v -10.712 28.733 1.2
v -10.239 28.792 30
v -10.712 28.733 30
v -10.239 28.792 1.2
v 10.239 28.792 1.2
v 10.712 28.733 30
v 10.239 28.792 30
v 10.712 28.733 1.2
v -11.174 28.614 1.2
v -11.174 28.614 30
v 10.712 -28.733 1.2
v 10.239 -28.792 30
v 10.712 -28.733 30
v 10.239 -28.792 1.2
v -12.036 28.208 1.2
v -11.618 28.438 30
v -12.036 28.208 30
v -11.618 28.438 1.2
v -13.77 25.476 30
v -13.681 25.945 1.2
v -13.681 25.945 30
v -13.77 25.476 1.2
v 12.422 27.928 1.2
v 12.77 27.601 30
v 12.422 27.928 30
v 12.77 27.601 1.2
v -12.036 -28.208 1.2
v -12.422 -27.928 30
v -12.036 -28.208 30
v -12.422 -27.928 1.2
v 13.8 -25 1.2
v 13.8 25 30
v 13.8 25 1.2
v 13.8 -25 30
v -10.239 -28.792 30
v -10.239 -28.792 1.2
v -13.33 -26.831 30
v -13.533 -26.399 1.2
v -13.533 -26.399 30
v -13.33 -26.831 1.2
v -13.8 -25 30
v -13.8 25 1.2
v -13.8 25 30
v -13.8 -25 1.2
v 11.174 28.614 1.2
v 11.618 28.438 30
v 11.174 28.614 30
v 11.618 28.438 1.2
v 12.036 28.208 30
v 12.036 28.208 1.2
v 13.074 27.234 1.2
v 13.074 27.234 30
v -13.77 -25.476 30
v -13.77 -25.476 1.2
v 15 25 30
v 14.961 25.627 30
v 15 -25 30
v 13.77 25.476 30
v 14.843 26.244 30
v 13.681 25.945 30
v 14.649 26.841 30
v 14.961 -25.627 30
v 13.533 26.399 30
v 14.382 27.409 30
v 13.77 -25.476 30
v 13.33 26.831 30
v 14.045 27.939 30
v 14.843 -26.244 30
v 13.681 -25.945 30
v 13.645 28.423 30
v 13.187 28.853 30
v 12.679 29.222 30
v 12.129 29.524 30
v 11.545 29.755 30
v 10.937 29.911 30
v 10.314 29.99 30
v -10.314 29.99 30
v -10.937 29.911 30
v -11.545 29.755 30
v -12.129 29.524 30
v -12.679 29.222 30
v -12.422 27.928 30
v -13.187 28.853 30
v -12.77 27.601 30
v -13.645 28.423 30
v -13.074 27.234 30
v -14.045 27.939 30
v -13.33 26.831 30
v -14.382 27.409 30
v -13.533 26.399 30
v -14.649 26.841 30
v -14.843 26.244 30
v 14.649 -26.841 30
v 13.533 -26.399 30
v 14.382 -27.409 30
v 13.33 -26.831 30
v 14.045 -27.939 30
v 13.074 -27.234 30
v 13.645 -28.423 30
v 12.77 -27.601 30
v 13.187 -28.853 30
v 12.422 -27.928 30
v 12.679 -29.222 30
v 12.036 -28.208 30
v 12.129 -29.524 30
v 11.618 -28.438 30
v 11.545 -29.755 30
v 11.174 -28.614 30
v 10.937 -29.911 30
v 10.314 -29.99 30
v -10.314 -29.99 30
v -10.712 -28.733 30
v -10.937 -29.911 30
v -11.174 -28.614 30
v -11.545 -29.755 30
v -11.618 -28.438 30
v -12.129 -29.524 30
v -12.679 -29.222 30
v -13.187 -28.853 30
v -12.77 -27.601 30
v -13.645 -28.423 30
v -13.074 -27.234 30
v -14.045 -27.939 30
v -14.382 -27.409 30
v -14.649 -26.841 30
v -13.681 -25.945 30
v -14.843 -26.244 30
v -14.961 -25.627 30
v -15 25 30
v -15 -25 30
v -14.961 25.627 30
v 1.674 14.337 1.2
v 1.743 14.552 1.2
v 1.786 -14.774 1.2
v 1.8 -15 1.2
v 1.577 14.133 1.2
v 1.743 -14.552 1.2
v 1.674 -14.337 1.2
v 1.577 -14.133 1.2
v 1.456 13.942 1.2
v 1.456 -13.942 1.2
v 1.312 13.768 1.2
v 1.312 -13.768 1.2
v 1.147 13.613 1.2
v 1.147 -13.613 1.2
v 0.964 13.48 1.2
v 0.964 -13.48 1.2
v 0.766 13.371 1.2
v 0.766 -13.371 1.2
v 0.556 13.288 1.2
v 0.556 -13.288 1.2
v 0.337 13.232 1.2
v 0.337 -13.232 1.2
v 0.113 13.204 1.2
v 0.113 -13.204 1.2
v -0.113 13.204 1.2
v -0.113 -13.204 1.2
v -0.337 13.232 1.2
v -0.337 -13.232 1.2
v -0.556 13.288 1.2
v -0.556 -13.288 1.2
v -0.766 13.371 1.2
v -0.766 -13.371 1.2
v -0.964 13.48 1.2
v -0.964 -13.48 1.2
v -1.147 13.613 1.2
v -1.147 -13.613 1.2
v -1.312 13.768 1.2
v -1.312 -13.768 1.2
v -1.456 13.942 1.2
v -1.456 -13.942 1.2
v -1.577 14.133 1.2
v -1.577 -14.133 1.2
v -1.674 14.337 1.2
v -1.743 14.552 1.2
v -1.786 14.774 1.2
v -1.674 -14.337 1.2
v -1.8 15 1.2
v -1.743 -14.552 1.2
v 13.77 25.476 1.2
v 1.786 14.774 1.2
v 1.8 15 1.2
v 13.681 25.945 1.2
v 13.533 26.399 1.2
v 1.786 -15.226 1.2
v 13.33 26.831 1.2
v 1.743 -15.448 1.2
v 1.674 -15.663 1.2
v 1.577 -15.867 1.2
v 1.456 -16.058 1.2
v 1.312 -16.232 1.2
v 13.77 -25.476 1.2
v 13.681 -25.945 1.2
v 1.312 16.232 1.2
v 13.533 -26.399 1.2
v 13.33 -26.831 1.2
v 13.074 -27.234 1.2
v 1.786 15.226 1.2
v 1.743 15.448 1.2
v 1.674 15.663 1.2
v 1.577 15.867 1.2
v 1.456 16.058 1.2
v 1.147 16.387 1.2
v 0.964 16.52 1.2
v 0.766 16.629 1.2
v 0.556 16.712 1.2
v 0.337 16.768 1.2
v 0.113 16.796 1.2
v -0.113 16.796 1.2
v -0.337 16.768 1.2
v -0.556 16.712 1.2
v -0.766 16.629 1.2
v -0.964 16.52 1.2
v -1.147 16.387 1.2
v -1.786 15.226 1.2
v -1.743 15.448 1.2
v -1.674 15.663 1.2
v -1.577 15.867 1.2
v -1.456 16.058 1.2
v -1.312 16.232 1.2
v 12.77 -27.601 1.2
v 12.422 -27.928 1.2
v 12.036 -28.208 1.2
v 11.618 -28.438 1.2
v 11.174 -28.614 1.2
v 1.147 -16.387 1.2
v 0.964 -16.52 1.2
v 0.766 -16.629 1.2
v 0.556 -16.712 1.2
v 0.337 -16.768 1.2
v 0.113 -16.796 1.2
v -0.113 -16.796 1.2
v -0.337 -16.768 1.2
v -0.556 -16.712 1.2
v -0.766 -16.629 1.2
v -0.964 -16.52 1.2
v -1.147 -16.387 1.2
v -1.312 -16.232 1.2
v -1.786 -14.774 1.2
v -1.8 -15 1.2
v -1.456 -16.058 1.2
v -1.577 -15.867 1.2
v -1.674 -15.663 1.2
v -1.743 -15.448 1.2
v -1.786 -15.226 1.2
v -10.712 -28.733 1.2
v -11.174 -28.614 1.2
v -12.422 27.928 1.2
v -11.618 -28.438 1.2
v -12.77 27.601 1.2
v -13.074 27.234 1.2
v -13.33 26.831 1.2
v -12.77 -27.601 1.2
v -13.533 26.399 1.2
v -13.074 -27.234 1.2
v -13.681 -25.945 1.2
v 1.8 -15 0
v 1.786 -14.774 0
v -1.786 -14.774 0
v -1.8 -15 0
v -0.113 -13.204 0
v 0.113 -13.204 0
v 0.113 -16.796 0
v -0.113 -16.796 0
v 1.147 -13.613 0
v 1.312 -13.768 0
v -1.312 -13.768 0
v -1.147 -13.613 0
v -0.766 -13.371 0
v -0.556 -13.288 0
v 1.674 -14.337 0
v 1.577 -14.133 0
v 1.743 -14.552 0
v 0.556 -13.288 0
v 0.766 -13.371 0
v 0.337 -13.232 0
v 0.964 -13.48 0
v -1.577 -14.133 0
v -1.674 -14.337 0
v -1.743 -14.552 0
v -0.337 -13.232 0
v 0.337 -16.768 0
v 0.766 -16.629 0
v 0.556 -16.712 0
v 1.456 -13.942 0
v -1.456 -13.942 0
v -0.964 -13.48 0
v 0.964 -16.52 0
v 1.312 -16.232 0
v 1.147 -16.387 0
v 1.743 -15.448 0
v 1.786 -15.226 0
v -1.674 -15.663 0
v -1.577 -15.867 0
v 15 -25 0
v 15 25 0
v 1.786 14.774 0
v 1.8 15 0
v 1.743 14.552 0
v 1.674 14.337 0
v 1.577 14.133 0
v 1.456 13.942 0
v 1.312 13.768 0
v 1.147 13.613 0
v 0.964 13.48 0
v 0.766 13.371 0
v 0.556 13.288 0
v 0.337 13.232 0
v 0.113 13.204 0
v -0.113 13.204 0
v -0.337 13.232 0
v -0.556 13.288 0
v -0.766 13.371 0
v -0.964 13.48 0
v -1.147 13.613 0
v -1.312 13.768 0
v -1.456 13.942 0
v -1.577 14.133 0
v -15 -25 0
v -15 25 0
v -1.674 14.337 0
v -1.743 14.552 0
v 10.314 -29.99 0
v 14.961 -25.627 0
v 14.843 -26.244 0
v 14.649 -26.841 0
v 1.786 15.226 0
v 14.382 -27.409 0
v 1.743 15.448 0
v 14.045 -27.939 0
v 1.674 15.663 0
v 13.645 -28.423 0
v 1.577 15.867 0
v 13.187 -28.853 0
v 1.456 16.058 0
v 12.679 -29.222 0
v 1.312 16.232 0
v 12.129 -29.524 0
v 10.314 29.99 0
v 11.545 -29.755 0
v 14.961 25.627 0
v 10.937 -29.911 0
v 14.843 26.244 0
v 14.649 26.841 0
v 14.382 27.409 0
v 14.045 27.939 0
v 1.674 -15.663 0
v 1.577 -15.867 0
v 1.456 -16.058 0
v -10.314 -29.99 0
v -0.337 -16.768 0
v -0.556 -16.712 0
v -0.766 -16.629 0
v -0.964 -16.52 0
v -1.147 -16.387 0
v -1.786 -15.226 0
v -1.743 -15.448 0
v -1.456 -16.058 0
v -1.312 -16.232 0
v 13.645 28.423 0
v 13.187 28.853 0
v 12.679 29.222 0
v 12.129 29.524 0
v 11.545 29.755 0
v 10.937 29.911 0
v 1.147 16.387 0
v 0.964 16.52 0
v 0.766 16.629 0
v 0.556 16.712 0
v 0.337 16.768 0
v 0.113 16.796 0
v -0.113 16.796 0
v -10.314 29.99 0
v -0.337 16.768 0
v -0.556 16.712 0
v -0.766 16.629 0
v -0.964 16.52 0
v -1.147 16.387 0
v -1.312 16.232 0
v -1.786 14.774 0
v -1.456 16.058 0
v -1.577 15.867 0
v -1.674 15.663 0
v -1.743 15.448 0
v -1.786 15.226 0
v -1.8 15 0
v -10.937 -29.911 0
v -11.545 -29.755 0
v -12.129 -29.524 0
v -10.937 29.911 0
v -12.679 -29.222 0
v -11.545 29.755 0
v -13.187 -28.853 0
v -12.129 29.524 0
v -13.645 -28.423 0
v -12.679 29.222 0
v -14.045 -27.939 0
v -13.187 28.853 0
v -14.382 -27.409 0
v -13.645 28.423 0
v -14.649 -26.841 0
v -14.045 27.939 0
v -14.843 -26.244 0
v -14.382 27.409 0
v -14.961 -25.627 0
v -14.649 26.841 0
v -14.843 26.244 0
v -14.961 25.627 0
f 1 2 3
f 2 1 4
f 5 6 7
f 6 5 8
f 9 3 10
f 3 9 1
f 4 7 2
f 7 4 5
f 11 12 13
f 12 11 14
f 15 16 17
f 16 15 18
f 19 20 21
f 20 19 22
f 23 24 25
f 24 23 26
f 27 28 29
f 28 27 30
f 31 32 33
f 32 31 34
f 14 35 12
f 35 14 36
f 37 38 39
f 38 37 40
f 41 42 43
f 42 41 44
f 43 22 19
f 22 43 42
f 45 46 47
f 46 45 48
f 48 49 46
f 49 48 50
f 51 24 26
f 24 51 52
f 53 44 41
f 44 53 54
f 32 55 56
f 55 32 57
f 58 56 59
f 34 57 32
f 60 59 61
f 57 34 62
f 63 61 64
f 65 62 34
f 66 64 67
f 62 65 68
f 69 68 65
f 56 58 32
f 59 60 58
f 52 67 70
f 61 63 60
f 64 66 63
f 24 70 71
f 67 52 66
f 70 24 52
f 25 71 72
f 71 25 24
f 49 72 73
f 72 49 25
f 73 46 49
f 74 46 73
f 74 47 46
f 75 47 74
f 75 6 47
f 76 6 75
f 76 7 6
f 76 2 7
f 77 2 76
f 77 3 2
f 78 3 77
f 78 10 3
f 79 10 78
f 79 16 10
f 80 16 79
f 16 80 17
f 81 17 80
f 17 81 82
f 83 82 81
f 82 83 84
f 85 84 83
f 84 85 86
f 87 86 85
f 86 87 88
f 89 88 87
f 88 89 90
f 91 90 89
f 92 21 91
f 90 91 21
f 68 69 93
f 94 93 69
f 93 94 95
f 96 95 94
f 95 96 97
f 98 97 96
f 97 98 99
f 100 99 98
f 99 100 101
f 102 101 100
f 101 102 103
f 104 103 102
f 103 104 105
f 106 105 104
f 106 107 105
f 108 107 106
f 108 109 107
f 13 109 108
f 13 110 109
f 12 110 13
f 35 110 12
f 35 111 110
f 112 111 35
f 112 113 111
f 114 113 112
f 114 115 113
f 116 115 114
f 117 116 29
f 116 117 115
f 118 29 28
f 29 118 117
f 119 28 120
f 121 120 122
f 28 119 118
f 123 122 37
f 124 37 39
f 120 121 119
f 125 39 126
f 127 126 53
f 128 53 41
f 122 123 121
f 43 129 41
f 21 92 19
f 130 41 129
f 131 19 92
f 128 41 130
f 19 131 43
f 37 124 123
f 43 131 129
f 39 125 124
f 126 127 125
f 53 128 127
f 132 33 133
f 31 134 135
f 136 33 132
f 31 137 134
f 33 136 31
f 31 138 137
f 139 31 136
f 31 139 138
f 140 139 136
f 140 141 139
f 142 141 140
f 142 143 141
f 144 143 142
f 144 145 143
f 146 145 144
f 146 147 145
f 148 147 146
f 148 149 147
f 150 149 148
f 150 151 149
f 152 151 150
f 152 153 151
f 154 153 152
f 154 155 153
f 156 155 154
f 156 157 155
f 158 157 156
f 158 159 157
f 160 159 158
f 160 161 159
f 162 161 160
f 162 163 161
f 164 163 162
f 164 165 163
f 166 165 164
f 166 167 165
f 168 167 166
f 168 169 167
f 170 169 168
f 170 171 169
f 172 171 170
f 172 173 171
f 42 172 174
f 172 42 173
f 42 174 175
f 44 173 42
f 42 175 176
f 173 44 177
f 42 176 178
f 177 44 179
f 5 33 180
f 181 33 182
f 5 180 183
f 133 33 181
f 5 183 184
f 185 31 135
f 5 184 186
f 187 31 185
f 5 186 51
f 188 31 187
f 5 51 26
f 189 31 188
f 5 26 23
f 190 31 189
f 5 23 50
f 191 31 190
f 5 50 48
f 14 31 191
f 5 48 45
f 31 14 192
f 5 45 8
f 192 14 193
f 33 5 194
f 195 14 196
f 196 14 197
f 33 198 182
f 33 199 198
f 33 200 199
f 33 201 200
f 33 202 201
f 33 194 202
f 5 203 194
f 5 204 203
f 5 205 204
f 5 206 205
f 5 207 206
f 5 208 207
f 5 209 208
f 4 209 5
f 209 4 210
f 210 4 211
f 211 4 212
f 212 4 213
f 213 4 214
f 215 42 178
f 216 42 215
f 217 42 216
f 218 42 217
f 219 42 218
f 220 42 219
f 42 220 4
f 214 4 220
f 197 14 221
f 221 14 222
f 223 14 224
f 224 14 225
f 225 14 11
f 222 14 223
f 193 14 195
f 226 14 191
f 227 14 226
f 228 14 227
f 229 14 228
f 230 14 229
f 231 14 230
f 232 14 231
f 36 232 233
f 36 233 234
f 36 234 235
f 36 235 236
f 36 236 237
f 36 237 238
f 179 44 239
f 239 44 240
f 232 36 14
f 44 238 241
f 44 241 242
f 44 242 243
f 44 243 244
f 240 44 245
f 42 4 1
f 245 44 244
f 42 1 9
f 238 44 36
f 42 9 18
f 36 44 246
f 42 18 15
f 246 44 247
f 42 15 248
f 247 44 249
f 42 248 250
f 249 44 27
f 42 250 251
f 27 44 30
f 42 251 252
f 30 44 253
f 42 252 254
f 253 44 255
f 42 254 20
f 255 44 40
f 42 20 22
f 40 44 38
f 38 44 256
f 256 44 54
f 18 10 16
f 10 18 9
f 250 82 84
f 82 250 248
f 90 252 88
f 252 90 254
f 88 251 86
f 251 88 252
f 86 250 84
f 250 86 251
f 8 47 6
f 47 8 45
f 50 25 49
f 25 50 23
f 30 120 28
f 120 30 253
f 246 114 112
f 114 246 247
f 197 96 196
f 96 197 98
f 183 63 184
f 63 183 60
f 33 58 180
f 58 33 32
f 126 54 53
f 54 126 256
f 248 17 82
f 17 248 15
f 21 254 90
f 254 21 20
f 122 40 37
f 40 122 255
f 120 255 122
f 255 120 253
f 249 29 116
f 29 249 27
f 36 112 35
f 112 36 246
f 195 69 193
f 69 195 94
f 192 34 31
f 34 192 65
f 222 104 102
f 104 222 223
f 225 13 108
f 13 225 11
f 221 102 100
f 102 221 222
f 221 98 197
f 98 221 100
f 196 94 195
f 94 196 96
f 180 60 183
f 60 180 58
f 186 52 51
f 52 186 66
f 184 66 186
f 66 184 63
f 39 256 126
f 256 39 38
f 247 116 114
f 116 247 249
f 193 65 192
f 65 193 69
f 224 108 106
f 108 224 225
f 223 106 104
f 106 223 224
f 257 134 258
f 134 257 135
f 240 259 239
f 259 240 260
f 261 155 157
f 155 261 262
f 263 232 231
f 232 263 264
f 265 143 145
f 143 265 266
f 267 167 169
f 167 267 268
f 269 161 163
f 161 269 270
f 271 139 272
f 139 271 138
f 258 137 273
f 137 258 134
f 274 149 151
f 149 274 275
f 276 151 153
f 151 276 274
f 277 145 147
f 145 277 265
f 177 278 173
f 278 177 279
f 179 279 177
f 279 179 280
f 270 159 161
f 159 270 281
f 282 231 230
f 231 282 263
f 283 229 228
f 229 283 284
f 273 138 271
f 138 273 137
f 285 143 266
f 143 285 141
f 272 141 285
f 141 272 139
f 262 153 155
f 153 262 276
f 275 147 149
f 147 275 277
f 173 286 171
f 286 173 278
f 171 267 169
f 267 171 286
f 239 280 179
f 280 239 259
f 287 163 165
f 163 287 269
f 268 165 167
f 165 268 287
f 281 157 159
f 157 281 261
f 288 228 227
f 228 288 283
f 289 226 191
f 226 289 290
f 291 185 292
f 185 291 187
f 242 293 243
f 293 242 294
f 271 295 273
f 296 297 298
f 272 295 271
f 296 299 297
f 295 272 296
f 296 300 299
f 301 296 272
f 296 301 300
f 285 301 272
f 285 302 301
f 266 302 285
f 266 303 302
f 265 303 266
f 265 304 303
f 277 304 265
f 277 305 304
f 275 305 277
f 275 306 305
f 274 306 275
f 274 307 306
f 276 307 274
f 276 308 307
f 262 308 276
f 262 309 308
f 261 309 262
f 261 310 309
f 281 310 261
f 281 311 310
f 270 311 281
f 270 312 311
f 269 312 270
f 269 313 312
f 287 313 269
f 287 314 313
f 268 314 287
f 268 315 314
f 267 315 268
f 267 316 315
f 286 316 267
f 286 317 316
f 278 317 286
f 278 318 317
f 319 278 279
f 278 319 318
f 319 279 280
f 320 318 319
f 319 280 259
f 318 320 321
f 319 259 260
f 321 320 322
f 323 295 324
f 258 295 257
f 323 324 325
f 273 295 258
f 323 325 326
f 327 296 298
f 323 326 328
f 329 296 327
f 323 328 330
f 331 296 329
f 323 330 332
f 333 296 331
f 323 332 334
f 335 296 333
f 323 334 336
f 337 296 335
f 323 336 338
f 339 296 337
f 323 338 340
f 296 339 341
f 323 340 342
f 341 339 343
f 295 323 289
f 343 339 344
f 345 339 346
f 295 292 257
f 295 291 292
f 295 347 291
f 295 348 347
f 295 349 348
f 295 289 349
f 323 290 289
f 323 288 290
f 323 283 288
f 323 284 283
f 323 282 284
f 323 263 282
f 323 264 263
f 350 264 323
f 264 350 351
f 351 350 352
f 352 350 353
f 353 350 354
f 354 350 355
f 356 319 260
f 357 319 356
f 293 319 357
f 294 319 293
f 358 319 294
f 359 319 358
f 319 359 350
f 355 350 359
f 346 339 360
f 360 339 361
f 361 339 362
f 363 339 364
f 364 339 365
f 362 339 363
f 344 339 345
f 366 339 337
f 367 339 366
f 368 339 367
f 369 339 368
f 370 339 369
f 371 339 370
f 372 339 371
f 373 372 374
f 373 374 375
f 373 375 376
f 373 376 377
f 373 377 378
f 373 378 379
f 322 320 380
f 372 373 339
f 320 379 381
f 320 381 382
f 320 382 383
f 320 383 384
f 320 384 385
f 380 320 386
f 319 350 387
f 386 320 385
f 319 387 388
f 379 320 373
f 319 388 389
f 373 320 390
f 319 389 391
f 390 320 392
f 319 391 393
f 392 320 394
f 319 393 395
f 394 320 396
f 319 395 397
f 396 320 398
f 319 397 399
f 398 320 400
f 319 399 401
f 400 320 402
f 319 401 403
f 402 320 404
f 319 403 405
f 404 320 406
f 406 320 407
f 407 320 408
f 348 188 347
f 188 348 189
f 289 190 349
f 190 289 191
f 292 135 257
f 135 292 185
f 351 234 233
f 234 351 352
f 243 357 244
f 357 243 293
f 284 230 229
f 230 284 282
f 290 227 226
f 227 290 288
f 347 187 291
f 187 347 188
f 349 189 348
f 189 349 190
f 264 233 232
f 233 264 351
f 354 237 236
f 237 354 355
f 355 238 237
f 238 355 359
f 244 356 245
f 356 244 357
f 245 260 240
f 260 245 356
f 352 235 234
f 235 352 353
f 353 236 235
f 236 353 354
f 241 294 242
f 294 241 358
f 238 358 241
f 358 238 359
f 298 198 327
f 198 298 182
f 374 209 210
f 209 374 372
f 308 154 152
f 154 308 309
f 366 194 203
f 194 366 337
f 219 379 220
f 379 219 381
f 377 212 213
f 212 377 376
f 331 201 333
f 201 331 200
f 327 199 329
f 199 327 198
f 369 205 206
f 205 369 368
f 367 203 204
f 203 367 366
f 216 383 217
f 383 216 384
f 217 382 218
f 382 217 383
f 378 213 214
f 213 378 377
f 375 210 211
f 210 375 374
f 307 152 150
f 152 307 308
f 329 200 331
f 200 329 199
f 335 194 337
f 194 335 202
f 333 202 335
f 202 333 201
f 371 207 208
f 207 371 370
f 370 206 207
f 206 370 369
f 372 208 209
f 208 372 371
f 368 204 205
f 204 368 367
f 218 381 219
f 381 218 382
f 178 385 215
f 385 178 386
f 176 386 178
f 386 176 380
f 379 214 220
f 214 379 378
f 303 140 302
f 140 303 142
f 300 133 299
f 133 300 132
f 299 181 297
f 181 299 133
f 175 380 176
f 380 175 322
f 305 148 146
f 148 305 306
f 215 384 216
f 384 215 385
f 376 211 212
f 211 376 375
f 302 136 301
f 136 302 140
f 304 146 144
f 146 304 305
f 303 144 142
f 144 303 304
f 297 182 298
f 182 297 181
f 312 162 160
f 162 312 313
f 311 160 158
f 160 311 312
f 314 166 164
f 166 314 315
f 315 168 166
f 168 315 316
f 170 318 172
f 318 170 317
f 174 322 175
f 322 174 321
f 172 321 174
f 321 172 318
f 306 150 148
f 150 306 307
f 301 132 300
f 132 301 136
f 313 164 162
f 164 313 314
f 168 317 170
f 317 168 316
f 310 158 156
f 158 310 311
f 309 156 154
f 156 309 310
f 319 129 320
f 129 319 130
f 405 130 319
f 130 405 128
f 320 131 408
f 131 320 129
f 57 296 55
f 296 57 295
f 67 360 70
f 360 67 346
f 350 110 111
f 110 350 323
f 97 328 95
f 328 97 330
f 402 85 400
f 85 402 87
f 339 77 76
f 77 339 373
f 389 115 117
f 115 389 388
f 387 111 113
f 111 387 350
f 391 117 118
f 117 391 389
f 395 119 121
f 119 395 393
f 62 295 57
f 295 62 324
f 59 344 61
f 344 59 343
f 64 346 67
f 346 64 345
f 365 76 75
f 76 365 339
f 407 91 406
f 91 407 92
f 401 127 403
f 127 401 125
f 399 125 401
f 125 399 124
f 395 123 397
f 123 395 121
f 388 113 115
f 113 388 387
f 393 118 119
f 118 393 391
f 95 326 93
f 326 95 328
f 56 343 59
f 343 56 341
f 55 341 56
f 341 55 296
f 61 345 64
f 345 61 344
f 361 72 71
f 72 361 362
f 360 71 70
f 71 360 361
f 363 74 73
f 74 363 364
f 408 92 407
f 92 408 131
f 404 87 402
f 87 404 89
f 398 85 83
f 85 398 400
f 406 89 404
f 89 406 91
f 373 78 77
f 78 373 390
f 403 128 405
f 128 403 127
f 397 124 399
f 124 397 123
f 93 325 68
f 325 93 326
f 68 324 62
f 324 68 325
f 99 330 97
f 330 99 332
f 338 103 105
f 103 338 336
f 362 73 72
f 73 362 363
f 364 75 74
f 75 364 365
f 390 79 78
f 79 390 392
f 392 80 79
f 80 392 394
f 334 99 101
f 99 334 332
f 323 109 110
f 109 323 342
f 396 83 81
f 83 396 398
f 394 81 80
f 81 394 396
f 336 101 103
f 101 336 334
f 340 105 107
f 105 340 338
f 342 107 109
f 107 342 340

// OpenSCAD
$fn = 50;


difference() {
	union() {
		hull() {
			translate(v = [-10.0000000000, 25.0000000000, 0]) {
				cylinder(h = 30, r = 5);
			}
			translate(v = [10.0000000000, 25.0000000000, 0]) {
				cylinder(h = 30, r = 5);
			}
			translate(v = [-10.0000000000, -25.0000000000, 0]) {
				cylinder(h = 30, r = 5);
			}
			translate(v = [10.0000000000, -25.0000000000, 0]) {
				cylinder(h = 30, r = 5);
			}
		}
	}
	union() {
		translate(v = [0, 0, 1.2000000000]) {
			hull() {
				translate(v = [-10.0000000000, 25.0000000000, 0]) {
					cylinder(h = 28.8000000000, r = 3.8000000000);
				}
				translate(v = [10.0000000000, 25.0000000000, 0]) {
					cylinder(h = 28.8000000000, r = 3.8000000000);
				}
				translate(v = [-10.0000000000, -25.0000000000, 0]) {
					cylinder(h = 28.8000000000, r = 3.8000000000);
				}
				translate(v = [10.0000000000, -25.0000000000, 0]) {
					cylinder(h = 28.8000000000, r = 3.8000000000);
				}
			}
		}
		#translate(v = [0.0000000000, -15.0000000000, 0]) {
			cylinder(h = 1.2000000000, r = 1.8000000000);
		}
		#translate(v = [0.0000000000, 15.0000000000, 0]) {
			cylinder(h = 1.2000000000, r = 1.8000000000);
		}
	}
}
